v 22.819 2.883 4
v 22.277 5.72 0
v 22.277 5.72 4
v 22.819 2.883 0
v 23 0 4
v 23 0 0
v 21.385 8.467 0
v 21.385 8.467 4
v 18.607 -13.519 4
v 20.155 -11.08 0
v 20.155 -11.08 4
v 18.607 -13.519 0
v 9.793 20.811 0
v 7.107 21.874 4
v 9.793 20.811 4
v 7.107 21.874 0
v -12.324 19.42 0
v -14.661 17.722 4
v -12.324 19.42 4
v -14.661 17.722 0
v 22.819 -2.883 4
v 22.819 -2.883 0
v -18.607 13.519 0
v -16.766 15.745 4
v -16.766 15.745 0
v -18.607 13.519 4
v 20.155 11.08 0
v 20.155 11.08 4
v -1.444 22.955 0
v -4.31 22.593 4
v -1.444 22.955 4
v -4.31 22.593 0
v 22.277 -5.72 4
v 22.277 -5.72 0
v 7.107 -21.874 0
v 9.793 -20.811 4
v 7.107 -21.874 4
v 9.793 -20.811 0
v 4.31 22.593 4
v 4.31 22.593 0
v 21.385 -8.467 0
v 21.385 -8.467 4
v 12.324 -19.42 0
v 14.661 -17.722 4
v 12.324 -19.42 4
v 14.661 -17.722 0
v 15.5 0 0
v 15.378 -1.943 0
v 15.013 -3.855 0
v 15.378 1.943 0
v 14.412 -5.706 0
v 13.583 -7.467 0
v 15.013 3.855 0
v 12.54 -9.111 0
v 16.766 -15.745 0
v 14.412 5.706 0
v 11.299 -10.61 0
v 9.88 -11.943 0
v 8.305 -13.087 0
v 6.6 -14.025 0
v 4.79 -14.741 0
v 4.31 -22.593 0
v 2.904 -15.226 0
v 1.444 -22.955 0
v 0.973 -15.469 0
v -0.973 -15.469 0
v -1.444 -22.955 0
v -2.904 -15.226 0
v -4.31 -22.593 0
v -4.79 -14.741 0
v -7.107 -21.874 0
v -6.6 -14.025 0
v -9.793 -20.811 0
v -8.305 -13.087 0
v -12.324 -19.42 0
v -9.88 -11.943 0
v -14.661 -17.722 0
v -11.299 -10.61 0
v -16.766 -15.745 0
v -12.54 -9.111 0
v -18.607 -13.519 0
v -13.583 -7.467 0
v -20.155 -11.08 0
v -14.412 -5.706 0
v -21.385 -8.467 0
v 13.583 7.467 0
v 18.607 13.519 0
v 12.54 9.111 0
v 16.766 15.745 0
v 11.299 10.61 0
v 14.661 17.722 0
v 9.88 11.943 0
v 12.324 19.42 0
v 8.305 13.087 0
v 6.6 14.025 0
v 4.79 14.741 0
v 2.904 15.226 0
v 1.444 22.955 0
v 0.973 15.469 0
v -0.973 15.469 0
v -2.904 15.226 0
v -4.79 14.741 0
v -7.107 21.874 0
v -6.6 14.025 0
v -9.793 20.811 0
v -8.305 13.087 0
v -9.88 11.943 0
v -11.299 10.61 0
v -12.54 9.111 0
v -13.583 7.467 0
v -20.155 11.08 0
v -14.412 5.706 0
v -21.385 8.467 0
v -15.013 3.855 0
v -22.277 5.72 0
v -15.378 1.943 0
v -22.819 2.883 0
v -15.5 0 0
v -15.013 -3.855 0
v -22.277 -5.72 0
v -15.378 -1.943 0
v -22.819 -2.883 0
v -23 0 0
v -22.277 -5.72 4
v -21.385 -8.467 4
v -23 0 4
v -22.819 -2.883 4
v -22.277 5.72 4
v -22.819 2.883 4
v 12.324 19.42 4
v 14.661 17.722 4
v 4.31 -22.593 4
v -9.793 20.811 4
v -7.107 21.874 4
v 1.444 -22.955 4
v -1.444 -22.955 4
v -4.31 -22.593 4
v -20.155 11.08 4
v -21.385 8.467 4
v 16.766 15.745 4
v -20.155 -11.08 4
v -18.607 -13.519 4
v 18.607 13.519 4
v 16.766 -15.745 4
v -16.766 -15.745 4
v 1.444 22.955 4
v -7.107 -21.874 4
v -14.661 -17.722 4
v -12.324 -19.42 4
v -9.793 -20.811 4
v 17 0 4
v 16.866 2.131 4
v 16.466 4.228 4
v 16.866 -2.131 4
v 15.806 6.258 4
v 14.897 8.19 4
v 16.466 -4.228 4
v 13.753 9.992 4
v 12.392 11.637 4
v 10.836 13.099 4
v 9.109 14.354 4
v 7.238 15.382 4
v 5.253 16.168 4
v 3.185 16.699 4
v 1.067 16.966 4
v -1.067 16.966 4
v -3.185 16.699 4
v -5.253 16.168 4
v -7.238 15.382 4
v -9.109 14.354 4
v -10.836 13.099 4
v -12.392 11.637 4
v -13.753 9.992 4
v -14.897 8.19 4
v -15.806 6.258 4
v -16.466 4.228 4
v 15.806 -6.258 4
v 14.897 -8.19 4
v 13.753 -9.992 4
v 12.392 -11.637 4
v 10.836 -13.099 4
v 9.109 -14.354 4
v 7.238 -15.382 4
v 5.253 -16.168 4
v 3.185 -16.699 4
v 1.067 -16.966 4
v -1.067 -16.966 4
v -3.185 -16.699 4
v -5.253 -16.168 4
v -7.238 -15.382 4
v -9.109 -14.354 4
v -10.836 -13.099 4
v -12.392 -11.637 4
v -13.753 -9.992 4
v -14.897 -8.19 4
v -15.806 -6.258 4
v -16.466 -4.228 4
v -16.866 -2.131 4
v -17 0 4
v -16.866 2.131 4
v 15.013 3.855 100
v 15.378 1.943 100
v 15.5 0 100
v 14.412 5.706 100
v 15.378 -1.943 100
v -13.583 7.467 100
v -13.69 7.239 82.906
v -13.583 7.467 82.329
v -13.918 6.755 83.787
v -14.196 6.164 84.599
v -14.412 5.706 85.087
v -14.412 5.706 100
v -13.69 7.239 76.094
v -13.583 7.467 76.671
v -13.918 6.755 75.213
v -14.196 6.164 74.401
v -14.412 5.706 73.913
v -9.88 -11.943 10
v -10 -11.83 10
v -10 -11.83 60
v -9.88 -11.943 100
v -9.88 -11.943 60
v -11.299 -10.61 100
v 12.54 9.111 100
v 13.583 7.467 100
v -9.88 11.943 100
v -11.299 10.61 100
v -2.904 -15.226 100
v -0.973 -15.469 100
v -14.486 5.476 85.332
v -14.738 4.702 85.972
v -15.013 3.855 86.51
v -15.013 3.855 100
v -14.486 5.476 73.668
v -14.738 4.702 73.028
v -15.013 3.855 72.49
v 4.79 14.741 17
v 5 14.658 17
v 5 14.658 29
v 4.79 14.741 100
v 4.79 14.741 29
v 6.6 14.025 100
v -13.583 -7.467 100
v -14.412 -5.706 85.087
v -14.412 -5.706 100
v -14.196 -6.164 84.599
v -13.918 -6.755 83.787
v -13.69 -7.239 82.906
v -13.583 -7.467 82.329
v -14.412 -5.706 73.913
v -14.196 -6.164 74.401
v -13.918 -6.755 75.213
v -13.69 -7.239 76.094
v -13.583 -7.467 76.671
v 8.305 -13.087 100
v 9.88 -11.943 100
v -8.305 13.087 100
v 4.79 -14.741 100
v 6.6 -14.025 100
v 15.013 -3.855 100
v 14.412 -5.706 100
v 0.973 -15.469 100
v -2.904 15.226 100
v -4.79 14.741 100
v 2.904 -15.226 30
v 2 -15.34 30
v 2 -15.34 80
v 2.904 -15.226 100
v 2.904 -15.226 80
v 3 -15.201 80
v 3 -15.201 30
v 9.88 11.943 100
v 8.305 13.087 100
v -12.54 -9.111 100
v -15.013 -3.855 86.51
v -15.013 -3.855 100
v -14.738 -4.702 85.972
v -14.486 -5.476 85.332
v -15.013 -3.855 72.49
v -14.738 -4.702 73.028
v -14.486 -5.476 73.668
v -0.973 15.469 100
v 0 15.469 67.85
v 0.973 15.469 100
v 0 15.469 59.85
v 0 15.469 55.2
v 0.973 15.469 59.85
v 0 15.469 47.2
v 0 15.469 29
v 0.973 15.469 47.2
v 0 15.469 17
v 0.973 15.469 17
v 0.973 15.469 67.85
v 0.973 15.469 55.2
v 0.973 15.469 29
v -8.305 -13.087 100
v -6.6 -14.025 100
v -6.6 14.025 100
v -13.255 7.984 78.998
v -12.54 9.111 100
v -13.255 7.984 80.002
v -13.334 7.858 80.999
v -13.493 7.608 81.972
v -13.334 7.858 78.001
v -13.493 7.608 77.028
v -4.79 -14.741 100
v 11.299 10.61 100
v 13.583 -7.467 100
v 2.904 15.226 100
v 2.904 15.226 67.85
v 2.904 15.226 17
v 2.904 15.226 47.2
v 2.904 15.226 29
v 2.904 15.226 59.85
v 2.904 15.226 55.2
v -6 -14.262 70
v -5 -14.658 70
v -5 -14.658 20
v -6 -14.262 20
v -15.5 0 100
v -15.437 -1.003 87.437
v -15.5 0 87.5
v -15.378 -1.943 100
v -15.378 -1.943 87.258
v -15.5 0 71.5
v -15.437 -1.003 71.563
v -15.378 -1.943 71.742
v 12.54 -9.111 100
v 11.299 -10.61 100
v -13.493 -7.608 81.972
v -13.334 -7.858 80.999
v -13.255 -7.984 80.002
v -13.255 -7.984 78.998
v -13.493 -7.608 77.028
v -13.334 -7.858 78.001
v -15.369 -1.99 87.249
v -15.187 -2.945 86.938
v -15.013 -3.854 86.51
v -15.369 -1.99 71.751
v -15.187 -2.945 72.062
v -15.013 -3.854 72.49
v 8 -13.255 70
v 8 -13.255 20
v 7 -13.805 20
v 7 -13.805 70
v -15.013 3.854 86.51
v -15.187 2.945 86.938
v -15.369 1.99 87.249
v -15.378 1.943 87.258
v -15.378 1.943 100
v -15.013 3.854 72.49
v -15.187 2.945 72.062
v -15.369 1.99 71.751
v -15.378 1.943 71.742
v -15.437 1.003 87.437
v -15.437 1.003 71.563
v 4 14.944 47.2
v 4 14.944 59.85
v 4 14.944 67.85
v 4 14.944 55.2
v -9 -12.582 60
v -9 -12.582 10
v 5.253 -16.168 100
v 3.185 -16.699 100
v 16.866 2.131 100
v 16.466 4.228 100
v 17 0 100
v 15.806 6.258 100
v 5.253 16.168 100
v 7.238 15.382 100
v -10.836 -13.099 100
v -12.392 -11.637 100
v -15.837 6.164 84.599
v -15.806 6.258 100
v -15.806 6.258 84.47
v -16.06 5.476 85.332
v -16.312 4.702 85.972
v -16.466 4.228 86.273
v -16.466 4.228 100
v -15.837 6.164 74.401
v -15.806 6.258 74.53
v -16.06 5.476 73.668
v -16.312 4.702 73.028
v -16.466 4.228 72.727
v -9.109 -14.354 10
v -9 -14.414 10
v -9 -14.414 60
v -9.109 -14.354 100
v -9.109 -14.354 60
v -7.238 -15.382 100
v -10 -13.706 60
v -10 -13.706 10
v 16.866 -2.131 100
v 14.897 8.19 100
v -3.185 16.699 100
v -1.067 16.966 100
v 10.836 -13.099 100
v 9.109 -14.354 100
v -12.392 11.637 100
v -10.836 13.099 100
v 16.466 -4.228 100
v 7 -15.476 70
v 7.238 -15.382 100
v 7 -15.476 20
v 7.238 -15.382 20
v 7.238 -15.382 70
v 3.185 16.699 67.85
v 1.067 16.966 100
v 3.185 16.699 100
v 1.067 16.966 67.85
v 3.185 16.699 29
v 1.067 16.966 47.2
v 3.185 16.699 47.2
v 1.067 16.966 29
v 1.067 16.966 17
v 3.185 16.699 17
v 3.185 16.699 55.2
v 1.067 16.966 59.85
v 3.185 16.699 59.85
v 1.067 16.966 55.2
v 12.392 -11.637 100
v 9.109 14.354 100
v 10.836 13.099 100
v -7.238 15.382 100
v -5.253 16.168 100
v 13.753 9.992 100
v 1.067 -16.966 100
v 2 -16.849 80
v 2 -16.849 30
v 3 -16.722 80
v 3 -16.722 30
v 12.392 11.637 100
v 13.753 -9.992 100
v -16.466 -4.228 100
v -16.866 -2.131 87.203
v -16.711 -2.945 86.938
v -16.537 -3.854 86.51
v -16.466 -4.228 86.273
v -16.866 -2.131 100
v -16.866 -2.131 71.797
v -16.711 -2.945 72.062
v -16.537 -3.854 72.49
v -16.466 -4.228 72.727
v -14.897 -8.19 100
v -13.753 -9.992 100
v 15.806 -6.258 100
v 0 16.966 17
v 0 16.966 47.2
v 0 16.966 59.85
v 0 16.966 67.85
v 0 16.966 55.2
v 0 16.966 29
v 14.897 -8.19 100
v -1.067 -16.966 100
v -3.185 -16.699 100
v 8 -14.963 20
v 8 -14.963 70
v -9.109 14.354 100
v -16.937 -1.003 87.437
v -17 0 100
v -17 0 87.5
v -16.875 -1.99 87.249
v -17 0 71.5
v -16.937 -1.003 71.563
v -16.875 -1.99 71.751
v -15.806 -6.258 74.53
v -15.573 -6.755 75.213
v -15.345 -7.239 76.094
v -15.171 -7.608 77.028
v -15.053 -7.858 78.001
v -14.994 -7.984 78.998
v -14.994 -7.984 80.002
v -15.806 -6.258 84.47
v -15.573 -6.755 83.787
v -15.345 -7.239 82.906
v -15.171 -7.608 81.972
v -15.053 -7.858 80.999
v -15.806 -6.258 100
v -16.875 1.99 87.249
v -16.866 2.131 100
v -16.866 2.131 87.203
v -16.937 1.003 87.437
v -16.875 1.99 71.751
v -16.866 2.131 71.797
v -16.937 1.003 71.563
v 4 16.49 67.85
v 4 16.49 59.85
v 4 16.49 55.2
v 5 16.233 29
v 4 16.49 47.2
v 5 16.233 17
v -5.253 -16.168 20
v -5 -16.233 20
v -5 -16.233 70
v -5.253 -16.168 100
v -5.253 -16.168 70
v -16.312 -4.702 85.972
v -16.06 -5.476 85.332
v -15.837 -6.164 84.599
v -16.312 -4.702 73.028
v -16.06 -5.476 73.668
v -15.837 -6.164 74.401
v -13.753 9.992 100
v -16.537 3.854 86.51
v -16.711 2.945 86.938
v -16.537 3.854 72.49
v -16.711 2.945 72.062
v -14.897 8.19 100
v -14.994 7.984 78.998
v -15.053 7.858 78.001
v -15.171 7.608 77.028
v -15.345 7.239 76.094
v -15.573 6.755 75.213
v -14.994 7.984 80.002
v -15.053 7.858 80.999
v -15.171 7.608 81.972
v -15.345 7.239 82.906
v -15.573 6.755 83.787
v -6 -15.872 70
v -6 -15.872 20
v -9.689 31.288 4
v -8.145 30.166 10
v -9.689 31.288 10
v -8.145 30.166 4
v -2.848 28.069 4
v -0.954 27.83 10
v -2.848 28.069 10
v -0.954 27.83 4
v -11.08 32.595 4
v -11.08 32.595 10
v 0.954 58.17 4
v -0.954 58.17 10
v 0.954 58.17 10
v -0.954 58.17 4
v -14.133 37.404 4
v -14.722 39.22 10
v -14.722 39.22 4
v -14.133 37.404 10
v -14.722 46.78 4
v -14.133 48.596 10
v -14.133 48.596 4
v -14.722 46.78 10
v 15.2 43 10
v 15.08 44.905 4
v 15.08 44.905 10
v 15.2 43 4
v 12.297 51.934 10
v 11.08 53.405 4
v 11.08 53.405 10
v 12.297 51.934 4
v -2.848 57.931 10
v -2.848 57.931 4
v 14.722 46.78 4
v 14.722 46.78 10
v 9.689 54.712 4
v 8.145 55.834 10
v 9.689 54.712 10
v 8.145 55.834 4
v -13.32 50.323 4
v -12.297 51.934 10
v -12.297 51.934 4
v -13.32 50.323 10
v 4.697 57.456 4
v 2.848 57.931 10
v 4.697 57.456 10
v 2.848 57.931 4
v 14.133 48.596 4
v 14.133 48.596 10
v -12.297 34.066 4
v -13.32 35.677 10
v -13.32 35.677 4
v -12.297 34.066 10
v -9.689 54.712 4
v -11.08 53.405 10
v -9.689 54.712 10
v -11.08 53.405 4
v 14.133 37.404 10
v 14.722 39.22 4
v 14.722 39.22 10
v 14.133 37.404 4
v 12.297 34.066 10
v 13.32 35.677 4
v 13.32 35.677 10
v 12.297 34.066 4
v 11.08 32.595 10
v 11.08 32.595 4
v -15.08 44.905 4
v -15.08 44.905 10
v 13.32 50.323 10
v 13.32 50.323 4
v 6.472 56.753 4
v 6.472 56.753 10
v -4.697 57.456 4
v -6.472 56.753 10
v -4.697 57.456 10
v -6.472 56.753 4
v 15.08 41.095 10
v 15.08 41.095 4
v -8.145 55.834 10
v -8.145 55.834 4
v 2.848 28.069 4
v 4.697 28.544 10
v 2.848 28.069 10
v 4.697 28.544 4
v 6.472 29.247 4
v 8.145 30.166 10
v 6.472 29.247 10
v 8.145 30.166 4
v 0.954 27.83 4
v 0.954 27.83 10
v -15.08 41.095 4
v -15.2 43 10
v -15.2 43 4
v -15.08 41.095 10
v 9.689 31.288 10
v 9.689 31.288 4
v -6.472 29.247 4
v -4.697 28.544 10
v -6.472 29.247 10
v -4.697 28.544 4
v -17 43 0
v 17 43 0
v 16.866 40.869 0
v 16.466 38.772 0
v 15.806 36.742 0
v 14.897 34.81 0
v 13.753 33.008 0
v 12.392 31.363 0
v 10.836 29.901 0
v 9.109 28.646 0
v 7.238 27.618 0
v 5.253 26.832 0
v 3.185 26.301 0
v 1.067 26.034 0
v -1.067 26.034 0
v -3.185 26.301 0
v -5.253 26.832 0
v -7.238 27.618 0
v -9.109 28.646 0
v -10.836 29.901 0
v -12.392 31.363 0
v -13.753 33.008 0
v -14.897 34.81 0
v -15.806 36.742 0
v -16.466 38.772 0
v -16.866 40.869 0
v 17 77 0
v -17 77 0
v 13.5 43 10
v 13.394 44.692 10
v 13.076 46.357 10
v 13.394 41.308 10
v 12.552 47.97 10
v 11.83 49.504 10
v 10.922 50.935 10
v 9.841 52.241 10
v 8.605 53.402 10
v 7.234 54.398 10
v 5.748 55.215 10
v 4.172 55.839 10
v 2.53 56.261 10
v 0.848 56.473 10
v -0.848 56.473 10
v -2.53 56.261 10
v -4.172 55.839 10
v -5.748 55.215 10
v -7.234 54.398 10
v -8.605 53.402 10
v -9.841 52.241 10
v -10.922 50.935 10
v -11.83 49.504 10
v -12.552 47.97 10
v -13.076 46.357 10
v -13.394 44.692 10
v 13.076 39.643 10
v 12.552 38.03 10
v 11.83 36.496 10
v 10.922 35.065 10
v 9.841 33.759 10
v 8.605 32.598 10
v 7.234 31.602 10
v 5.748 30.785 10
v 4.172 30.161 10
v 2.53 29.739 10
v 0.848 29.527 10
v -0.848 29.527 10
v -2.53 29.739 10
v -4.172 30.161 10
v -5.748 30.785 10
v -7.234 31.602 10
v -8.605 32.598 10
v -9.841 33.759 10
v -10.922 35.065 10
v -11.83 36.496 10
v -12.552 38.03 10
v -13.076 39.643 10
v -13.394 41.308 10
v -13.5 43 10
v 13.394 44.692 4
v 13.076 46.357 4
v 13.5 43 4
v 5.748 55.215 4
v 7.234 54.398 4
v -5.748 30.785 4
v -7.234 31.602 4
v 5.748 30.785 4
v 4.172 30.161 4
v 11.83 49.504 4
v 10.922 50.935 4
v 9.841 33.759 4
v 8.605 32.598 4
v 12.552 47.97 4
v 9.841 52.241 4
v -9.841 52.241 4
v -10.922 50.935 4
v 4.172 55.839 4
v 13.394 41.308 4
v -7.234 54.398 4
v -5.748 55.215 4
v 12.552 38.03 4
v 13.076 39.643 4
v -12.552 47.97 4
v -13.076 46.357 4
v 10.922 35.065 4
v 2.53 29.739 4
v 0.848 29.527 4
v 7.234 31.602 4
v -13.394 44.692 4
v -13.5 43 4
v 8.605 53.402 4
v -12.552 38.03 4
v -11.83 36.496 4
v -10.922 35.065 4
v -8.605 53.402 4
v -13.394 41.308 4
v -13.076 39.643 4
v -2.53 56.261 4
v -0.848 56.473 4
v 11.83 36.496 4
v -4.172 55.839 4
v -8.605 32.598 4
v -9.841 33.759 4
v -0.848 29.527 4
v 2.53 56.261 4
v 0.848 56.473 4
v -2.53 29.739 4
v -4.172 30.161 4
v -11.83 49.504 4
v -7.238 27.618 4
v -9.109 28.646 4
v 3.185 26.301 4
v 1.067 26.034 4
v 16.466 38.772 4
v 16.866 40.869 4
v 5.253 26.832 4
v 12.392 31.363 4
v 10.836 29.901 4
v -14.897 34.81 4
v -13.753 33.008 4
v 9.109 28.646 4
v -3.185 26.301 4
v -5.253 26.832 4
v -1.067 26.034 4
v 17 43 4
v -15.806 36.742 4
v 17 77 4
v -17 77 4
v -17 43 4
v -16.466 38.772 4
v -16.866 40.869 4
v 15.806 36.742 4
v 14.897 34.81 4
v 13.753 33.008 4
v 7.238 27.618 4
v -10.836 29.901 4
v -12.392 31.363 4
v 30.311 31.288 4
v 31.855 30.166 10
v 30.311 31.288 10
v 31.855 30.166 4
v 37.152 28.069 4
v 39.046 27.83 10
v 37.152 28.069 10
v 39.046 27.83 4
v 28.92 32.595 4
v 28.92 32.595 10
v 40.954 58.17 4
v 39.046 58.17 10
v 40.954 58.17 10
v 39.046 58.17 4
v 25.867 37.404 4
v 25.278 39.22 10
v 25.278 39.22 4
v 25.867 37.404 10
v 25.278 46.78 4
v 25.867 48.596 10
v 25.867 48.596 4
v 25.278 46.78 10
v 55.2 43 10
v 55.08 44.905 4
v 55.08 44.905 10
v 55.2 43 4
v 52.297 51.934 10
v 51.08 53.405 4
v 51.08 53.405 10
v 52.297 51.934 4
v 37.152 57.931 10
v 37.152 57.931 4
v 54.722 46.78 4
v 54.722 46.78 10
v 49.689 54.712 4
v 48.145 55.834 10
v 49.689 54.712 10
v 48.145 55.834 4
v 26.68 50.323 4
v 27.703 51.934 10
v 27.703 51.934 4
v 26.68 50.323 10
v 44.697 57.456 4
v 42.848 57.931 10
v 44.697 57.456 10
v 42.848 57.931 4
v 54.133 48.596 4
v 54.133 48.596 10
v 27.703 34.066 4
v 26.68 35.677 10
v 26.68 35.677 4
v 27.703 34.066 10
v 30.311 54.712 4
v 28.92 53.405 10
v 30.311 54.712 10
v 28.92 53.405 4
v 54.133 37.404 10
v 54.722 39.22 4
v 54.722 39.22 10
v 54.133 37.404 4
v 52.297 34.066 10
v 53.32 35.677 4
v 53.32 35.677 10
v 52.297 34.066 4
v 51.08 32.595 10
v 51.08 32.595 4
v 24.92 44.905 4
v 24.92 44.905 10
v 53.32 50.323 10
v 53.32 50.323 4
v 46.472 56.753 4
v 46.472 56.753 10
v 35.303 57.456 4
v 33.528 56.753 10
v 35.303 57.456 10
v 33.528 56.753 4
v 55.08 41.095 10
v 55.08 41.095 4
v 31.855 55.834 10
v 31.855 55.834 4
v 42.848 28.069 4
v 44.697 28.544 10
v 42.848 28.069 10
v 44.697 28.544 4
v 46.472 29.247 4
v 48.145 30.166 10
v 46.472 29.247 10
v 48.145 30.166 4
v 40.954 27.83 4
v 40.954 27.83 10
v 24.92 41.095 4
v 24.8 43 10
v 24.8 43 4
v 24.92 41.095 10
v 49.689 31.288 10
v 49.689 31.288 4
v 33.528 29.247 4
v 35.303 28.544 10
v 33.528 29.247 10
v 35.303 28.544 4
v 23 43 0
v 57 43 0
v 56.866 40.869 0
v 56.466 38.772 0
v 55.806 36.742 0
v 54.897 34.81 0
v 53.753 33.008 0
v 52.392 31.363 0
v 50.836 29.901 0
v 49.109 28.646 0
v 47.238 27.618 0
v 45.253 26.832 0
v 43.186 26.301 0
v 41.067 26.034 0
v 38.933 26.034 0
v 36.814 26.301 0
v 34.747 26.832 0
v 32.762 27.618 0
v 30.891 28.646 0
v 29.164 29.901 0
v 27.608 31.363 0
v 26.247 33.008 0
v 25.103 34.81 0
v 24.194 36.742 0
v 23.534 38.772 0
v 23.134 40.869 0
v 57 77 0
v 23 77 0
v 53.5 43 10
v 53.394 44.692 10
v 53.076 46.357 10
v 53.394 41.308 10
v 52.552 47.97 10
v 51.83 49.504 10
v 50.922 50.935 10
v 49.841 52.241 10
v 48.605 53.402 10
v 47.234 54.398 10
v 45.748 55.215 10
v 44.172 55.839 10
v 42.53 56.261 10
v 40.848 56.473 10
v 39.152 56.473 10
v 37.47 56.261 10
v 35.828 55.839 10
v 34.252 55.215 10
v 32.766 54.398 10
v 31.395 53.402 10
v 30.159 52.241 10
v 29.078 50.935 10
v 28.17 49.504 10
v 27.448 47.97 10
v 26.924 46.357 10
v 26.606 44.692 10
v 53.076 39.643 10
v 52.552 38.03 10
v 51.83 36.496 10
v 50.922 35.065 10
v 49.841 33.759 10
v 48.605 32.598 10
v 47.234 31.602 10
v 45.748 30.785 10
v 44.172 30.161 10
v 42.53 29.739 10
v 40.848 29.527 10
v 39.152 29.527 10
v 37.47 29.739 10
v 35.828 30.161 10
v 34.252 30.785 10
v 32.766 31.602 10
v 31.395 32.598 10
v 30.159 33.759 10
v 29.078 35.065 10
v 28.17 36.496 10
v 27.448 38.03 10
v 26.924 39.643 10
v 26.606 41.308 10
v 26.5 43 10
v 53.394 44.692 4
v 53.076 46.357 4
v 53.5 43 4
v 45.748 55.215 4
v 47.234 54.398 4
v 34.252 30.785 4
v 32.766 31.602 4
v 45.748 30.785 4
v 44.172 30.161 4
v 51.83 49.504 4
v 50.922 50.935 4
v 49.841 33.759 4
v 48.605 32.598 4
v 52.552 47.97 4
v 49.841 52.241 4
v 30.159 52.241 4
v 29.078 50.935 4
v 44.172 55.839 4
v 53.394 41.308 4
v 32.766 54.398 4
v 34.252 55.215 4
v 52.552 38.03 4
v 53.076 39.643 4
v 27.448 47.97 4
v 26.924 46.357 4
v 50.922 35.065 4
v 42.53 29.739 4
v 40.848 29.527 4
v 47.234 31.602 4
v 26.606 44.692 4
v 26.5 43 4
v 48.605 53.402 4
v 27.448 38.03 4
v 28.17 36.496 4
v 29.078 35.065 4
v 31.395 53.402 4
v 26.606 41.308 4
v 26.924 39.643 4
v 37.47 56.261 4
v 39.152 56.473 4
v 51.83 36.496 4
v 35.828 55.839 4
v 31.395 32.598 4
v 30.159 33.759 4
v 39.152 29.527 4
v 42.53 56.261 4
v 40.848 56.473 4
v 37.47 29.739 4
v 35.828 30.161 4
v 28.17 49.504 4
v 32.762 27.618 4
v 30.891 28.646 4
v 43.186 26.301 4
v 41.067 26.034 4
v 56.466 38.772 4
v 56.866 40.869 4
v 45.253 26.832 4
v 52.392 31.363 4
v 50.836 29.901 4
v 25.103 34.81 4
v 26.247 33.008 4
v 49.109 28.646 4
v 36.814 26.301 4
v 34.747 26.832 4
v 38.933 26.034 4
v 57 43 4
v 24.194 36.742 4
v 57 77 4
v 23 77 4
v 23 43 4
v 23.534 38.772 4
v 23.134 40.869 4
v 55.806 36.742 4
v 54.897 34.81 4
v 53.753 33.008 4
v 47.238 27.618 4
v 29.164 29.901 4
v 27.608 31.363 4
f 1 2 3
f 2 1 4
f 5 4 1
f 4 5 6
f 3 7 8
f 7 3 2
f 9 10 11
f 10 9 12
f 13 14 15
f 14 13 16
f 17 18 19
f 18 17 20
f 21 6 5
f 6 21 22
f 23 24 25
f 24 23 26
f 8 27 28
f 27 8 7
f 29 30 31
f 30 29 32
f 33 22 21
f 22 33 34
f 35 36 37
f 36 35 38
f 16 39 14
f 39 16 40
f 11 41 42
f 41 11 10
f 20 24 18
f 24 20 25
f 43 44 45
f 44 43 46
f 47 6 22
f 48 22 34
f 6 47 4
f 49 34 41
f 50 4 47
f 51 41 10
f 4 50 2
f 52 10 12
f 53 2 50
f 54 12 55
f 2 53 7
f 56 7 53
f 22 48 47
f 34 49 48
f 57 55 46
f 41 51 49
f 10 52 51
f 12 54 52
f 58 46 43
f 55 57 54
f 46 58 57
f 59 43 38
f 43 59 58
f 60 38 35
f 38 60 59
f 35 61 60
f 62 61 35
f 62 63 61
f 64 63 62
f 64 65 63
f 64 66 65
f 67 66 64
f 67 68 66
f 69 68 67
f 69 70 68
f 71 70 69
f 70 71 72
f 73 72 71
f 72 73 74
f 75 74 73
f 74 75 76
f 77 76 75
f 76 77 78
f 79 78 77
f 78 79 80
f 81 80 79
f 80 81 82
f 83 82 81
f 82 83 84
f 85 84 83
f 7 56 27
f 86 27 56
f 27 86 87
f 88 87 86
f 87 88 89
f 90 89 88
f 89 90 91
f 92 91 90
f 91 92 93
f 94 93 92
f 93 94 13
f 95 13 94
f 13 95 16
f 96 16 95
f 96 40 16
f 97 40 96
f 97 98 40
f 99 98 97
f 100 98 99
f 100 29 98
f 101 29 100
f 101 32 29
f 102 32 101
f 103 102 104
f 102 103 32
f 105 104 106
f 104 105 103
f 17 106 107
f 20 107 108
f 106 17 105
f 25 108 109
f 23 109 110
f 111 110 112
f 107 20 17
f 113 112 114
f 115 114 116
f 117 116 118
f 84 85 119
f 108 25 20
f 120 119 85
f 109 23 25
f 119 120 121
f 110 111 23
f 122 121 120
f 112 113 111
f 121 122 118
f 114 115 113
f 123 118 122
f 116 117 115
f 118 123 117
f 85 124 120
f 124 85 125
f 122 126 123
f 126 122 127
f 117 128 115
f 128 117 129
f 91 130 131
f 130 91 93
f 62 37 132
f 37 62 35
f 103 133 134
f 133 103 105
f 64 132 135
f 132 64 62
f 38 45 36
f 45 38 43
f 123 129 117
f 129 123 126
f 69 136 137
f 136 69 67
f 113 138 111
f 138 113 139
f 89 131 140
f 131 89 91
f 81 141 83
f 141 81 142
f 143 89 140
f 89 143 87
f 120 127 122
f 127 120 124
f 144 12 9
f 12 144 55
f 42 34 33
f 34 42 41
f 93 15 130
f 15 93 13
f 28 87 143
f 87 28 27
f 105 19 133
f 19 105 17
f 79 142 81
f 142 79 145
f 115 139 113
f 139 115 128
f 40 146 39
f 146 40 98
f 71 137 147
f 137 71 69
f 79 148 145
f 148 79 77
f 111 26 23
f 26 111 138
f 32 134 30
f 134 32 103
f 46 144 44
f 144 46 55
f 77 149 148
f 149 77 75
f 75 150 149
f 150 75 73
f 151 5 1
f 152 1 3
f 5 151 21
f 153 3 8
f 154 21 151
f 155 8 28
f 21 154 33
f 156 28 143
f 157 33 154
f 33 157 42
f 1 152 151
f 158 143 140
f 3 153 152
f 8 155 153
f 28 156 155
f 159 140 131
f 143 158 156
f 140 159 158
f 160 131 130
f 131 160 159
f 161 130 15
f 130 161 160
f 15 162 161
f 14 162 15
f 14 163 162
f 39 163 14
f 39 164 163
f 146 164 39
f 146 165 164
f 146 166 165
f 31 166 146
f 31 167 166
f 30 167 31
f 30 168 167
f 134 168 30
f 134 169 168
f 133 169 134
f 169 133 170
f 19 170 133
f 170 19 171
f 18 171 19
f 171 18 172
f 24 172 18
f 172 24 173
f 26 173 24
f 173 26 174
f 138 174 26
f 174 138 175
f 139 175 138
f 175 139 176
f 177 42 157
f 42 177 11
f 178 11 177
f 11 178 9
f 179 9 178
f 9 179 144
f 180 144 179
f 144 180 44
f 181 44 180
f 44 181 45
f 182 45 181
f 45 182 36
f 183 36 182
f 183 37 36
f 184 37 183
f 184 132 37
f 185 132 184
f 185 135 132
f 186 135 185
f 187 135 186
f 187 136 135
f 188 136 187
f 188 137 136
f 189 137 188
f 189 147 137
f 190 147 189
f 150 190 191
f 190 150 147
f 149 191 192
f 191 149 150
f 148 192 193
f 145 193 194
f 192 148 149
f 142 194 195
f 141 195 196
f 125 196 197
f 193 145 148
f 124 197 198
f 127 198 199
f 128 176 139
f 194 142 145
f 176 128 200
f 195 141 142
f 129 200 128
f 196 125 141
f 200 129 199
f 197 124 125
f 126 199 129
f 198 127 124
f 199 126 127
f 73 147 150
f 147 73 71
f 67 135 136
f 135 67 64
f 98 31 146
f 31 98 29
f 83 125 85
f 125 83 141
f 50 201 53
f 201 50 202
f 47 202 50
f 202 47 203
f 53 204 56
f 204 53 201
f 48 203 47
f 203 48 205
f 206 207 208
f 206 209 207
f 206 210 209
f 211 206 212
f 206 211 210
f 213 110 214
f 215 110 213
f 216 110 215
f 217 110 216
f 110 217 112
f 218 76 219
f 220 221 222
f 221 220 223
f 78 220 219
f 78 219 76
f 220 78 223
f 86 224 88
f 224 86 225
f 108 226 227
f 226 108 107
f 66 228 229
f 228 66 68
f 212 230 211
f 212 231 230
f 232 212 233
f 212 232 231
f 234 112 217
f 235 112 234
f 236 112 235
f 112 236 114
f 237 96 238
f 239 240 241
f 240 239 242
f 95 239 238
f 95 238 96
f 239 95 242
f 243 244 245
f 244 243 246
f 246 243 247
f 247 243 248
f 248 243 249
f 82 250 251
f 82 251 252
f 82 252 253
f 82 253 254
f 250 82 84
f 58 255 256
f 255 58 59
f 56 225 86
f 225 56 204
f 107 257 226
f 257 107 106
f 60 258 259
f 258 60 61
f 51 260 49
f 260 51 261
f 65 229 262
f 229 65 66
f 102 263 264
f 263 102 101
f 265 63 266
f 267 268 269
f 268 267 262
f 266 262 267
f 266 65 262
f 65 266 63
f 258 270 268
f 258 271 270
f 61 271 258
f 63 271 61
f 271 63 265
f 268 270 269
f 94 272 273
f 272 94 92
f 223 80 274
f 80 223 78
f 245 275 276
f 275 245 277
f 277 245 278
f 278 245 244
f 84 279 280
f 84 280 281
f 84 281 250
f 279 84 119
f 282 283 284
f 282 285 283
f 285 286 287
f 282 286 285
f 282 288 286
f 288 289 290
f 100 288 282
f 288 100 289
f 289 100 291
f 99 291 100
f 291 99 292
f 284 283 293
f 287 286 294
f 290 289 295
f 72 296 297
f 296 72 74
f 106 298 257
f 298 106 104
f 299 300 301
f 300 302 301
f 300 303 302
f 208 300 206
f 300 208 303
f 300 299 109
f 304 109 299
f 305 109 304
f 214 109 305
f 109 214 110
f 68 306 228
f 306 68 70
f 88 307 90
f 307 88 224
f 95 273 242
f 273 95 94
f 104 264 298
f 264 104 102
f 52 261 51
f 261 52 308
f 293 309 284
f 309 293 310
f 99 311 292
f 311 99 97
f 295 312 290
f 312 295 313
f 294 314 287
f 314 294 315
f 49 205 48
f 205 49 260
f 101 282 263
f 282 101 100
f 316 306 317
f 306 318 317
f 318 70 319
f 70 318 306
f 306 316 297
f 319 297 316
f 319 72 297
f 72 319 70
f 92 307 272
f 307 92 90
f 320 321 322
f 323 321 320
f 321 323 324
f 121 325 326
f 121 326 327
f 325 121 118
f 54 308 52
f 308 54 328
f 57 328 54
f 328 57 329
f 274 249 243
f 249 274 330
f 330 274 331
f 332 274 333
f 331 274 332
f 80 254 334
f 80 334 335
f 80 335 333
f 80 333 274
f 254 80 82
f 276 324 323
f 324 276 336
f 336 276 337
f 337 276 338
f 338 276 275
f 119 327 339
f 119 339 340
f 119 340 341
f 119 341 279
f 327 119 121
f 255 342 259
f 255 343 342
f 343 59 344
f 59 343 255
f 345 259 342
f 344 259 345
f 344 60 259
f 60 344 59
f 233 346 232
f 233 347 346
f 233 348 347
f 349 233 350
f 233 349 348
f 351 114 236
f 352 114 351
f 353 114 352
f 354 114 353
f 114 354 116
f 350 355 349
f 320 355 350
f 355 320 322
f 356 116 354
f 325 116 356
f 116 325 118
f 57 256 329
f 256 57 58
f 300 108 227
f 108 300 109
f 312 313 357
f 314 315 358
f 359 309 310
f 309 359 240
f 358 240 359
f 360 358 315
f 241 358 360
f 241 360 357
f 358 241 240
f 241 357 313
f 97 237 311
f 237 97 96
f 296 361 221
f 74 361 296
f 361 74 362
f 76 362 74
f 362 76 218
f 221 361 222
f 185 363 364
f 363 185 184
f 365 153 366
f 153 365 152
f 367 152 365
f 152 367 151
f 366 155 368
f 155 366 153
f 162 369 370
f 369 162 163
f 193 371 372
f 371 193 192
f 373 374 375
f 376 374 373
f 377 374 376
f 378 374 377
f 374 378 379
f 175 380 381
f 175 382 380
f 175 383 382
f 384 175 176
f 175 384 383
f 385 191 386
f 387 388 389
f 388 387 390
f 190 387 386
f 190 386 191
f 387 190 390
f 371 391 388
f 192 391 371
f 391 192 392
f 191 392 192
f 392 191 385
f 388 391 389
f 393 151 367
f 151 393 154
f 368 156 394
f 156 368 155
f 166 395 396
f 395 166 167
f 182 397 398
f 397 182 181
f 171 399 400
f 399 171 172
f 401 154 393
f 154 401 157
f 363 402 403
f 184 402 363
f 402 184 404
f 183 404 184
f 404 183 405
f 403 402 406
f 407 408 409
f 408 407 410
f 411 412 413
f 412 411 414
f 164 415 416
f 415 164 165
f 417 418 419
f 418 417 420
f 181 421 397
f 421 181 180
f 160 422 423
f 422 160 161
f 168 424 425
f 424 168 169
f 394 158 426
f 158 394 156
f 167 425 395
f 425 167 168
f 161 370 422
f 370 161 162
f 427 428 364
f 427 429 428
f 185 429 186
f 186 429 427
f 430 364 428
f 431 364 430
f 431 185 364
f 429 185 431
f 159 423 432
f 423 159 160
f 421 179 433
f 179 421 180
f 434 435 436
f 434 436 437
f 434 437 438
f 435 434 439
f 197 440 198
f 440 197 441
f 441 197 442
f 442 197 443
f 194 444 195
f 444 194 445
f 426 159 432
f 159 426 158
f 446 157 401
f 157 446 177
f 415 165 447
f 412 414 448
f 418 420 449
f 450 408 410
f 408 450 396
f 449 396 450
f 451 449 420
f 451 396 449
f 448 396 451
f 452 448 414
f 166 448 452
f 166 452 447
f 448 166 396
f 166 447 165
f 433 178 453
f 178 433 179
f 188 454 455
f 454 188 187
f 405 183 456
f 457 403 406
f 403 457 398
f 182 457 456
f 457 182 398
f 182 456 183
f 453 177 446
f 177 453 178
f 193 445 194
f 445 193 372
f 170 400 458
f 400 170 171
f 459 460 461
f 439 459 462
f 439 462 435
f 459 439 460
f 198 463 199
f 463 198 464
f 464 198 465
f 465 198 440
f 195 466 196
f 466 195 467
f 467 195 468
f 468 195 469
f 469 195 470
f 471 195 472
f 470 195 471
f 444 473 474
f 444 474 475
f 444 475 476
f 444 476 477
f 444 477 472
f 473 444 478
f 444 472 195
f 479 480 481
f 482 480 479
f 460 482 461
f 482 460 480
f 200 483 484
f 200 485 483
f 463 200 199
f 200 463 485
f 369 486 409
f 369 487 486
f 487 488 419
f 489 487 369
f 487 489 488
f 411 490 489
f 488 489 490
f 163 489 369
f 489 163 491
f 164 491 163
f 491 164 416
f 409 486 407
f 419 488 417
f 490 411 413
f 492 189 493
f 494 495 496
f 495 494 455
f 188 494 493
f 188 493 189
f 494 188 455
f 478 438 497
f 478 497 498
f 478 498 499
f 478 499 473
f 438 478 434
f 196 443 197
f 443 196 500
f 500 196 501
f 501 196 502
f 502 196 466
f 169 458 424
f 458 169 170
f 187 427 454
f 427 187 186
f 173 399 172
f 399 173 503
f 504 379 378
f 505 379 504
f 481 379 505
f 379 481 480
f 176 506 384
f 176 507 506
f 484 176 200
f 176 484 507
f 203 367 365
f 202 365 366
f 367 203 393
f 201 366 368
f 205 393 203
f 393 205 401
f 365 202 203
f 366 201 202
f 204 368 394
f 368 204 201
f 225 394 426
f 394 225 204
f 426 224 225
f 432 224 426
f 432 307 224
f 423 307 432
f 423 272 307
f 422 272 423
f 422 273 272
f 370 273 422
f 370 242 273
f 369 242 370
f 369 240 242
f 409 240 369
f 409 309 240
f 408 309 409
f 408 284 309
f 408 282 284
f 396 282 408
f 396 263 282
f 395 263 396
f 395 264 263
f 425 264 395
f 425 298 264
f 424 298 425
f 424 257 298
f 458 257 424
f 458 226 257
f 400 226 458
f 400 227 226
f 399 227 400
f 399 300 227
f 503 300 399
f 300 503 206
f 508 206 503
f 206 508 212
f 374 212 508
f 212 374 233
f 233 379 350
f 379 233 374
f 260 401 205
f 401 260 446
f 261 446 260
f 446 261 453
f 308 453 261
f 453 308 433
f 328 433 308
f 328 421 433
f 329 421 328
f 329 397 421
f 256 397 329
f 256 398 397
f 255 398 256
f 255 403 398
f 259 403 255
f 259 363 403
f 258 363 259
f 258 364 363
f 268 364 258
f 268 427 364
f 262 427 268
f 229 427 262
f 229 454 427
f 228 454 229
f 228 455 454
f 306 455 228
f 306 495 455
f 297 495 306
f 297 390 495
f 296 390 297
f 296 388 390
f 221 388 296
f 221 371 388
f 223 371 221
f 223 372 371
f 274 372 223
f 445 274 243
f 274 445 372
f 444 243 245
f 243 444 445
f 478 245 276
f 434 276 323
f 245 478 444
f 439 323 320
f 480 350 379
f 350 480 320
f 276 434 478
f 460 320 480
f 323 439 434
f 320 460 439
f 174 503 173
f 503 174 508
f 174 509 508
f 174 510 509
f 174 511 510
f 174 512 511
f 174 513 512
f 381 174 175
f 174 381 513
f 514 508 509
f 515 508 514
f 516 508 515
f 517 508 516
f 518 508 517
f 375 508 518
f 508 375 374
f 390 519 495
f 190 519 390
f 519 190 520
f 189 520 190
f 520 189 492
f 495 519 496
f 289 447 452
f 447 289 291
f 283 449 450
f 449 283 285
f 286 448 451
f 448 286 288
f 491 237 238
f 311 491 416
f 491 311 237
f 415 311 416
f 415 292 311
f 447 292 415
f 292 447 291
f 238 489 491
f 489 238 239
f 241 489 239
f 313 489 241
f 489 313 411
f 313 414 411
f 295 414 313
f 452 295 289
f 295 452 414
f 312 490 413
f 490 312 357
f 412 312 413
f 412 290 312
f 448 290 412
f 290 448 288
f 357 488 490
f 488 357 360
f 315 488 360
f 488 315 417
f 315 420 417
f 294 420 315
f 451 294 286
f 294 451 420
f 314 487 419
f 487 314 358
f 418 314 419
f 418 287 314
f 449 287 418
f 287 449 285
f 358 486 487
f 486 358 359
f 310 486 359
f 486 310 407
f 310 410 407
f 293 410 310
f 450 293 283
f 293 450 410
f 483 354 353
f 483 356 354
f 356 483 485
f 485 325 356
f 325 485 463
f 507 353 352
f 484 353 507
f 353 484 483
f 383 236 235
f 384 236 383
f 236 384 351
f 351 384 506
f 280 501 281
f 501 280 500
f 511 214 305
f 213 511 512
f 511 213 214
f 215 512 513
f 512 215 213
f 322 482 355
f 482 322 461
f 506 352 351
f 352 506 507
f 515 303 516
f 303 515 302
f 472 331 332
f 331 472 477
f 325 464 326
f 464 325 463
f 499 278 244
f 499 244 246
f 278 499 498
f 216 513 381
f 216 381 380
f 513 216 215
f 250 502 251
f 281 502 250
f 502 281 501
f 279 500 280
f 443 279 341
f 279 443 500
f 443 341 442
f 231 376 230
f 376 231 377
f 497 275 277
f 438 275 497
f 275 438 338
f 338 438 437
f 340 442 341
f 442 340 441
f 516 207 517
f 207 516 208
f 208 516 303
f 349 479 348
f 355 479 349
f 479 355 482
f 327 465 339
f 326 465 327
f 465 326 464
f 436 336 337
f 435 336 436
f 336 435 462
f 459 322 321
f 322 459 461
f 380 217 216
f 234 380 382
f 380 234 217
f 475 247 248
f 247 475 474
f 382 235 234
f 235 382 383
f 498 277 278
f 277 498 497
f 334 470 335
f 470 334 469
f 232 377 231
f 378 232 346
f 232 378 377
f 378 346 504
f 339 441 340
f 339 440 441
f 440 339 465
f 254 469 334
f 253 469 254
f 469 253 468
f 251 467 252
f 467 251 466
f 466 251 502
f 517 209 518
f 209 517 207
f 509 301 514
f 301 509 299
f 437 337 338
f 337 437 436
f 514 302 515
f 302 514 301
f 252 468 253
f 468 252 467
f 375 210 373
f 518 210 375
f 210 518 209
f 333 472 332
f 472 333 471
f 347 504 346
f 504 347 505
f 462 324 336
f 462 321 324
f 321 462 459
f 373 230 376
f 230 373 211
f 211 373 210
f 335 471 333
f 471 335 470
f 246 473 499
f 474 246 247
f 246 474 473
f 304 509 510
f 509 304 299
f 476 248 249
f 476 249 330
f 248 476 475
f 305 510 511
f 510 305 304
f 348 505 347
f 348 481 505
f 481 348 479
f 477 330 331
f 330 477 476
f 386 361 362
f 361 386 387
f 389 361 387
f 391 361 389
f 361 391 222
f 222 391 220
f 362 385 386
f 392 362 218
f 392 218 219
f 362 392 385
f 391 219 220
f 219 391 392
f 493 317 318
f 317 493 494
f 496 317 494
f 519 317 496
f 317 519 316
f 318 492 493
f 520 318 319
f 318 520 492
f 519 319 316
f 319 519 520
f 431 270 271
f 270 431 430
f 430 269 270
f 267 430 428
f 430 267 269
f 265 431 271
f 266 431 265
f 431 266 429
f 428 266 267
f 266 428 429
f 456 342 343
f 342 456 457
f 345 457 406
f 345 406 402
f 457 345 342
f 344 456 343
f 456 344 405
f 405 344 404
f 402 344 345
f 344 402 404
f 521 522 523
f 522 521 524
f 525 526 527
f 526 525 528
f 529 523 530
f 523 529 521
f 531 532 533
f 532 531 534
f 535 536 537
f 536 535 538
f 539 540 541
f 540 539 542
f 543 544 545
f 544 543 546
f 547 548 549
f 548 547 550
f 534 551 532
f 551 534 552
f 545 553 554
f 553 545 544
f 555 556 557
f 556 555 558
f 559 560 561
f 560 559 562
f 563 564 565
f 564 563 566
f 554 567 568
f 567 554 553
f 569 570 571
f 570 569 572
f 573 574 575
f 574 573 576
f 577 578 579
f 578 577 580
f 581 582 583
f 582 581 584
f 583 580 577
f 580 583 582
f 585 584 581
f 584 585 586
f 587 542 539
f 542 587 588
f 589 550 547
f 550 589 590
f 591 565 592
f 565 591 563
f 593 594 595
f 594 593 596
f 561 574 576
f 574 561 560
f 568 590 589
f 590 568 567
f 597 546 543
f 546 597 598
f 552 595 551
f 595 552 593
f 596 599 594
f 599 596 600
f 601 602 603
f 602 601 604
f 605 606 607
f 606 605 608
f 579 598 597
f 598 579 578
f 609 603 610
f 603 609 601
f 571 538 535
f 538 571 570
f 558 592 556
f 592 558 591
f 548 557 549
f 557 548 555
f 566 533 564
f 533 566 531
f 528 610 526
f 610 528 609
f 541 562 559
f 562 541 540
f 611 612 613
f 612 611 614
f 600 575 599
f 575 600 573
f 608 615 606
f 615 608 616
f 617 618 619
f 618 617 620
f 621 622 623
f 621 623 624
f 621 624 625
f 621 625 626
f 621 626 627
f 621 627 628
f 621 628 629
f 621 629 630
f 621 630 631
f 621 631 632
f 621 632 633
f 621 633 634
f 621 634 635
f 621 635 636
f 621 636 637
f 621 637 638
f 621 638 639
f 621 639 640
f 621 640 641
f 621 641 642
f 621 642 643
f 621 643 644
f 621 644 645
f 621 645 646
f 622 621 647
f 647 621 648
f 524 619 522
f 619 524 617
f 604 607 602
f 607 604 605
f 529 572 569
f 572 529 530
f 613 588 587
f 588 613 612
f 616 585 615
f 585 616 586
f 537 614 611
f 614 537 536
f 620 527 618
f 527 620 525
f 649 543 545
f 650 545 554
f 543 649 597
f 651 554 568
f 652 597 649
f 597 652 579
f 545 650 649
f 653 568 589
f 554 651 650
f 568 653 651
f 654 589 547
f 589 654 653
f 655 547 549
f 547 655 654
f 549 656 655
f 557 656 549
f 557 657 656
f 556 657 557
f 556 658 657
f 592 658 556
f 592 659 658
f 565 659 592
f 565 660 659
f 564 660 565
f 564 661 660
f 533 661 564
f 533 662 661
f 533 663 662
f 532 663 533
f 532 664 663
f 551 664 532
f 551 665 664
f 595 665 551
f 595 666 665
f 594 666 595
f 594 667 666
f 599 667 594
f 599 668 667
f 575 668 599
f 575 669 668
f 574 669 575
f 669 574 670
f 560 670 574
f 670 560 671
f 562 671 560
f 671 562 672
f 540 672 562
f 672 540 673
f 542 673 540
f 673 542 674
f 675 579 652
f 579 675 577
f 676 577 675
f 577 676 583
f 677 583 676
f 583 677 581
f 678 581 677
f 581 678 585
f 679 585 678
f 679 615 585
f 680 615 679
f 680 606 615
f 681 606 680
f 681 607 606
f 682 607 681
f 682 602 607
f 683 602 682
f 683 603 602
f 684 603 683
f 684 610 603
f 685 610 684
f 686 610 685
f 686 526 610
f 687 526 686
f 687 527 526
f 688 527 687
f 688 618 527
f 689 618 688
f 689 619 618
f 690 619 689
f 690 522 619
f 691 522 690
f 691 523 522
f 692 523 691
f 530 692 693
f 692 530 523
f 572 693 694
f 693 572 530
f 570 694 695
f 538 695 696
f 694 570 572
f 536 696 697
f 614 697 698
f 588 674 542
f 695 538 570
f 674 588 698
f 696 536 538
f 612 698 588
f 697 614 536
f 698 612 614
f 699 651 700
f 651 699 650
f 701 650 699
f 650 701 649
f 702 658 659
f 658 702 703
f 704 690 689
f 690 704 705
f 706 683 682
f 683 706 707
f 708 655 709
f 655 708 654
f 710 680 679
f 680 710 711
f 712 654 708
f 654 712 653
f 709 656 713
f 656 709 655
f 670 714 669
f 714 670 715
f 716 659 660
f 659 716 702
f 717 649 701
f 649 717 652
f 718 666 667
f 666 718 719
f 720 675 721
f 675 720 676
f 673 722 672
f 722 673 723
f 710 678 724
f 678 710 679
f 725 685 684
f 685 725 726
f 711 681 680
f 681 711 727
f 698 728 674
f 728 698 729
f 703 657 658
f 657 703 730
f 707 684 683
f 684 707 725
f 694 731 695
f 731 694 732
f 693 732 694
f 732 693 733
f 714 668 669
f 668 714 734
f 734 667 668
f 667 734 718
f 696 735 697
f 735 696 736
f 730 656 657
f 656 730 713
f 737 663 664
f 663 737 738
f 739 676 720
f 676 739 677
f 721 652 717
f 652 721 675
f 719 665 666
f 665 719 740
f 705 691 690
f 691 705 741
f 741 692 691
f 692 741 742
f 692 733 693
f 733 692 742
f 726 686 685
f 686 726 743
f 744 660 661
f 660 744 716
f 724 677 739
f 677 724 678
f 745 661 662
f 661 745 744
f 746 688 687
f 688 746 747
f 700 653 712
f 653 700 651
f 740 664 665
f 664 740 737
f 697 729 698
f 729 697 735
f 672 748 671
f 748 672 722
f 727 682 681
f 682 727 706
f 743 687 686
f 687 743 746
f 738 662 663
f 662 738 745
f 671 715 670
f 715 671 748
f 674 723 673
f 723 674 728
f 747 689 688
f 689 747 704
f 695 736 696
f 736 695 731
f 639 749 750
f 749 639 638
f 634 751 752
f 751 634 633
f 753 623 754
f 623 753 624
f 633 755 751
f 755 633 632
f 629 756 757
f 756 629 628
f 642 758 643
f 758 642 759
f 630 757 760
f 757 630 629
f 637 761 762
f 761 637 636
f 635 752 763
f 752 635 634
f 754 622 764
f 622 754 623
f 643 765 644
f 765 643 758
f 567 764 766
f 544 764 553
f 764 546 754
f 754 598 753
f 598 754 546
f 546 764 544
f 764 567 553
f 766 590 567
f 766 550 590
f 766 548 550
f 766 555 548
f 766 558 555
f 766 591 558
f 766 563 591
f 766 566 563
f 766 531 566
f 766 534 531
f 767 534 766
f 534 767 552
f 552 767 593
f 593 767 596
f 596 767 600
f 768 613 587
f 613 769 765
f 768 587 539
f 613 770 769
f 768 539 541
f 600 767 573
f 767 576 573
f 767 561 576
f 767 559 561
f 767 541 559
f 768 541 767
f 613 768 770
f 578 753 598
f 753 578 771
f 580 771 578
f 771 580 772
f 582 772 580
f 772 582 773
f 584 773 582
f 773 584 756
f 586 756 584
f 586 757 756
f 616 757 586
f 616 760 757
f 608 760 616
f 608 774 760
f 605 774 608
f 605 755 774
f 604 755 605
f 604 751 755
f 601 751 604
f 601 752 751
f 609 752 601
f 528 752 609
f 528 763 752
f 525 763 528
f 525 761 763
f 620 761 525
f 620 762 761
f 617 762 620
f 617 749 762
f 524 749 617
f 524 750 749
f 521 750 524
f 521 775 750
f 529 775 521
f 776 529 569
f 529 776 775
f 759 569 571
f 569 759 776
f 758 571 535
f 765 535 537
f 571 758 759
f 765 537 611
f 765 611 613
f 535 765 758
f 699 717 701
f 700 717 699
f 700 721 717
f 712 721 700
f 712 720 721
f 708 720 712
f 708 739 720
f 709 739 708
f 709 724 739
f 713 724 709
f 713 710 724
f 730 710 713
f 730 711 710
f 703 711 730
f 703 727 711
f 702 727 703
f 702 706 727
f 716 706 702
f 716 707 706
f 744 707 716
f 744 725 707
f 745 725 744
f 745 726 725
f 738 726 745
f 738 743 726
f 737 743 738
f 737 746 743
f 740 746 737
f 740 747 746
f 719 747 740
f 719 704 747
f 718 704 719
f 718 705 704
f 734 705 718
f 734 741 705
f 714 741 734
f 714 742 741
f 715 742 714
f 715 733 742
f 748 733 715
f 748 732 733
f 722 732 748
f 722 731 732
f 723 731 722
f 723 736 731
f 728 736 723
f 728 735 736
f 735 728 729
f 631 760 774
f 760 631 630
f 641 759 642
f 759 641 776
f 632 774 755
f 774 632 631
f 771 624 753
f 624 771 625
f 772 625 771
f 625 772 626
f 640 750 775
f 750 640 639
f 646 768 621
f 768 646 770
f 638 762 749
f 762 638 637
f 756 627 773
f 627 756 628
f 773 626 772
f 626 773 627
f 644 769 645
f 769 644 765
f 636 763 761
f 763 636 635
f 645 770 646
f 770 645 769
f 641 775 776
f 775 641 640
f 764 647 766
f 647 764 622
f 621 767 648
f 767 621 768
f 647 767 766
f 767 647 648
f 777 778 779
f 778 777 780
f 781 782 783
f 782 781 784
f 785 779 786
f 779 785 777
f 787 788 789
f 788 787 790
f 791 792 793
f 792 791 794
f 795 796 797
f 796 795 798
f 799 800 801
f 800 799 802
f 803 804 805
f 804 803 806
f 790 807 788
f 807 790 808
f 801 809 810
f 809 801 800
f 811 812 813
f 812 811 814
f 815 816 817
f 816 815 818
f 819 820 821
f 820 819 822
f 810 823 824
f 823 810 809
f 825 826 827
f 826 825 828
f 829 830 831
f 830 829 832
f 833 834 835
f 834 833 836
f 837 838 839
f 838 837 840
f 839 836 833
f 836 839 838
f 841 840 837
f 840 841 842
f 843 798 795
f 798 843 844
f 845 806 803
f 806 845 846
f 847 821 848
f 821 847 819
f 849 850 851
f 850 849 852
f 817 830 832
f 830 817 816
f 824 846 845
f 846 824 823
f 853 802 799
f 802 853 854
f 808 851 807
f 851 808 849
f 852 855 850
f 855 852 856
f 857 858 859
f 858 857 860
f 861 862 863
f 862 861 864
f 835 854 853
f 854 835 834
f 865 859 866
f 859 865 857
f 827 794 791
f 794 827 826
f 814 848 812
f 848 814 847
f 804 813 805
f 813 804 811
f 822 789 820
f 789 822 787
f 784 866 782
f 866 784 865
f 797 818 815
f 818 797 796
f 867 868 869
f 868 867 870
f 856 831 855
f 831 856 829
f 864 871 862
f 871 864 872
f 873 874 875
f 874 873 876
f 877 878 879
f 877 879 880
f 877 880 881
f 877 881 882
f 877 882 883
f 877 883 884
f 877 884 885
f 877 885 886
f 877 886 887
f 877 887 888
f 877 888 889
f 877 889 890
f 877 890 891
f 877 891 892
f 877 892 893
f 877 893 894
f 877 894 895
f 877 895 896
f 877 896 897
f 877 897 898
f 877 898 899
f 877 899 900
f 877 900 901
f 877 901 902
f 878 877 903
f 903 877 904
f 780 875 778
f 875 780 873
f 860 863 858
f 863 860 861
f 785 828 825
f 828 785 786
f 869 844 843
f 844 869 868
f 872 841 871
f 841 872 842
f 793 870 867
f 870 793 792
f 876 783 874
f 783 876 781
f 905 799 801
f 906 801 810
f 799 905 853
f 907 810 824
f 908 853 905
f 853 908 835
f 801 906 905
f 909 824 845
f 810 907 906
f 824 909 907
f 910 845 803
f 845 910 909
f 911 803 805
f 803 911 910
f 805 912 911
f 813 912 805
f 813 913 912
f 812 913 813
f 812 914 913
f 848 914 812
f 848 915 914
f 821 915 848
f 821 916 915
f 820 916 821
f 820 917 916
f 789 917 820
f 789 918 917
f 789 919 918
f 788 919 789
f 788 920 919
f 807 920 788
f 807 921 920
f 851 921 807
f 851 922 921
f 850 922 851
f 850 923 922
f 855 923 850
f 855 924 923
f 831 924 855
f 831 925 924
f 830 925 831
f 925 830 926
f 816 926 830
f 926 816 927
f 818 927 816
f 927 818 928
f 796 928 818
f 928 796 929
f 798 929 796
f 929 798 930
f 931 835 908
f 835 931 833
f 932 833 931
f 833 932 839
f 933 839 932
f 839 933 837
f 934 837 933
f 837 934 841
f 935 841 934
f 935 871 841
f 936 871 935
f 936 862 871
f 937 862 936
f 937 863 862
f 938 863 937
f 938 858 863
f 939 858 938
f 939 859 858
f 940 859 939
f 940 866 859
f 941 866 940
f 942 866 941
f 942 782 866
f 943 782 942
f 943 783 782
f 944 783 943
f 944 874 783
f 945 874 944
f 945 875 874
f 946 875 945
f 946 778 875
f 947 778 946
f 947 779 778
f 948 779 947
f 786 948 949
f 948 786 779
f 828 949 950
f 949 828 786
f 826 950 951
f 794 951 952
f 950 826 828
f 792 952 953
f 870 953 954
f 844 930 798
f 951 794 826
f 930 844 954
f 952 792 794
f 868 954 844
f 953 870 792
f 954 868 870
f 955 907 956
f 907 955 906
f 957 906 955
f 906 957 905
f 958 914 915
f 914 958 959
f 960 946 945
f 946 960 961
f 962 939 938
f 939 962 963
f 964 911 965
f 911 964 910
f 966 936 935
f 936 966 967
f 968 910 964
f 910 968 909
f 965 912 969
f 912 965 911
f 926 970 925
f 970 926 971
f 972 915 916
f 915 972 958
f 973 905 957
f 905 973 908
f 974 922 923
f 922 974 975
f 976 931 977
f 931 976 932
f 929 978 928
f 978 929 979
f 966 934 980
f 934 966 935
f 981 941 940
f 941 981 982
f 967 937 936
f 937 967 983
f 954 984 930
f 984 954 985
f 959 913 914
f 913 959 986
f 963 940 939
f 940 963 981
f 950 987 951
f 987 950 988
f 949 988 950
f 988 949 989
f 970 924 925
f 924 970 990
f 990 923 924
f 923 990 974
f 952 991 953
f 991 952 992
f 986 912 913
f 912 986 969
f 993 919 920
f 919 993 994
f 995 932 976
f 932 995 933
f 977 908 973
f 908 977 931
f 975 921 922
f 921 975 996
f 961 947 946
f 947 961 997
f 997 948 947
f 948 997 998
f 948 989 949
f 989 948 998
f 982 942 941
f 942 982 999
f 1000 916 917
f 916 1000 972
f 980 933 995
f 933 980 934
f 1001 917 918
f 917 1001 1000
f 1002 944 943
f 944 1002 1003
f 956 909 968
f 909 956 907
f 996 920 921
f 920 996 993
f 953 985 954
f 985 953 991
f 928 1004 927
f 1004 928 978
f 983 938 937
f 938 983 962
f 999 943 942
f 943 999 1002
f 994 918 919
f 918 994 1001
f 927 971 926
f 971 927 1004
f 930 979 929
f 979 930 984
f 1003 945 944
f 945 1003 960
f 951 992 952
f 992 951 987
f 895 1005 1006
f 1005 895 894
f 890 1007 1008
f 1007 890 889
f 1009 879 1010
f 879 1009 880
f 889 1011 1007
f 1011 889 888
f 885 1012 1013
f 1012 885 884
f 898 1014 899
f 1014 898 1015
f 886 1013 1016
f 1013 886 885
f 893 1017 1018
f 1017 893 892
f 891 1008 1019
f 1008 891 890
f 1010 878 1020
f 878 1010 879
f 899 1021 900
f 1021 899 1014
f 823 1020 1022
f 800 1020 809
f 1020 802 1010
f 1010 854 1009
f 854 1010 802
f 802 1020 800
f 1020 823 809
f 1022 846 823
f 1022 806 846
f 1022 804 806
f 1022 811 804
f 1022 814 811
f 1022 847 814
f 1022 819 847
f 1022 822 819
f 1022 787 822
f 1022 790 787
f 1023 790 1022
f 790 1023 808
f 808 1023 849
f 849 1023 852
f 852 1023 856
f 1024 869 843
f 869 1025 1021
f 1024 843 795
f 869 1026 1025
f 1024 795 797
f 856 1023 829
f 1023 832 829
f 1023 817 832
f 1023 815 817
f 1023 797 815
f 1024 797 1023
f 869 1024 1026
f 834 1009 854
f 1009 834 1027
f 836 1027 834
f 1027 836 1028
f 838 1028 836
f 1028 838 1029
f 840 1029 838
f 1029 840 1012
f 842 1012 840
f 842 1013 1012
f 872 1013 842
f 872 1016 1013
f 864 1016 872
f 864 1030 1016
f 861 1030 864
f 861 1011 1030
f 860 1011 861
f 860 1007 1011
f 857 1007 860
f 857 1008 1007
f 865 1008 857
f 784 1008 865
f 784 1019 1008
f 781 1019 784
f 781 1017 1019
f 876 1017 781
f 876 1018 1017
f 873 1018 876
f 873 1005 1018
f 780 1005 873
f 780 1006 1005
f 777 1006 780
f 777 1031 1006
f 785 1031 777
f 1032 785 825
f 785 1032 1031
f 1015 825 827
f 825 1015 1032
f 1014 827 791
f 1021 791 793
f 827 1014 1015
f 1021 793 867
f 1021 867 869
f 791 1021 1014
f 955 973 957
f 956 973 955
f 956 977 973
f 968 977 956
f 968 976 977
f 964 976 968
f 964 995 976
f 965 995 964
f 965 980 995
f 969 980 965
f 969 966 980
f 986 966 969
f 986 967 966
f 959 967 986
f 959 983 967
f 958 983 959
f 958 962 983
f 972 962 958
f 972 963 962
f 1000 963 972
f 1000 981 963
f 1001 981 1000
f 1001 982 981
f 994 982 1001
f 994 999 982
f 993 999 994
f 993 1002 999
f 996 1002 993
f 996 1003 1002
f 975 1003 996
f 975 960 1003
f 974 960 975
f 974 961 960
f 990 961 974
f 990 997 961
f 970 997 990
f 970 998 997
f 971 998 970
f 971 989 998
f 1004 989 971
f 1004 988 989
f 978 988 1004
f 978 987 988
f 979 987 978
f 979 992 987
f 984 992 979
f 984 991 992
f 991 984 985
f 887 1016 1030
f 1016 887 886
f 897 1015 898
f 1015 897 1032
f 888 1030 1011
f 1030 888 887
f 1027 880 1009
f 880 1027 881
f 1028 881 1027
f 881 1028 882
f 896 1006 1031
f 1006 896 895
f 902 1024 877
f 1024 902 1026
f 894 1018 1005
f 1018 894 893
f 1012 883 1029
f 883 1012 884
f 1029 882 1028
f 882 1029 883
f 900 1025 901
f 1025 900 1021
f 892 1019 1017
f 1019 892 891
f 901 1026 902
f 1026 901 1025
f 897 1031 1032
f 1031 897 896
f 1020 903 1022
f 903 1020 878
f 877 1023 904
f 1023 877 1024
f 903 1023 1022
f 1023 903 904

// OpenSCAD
$fn=50;

module rounded(x, y, z, r) {
    translate([r, r, 0])
        minkowski() {
          cube([x - 2 * r, y - 2 * r, z - 1]);
          cylinder(r=r, h = 1);
        };
}

module pi() {
    rounded(65, 30, 1.5, 2.5);

    translate([52, 7.3, 0])
    cube([16, 12, 3]);

    translate([65 - 19, 30 - 7, 0])
    cube([12, 17, 5]);

    translate([19.8, 30 - 6, 0])
    cube([8, 16, 4]);

    translate([7.15, 30 - 6, 0])
    cube([8, 16, 4]);
}

module cam() {
    cube([25, 25, 1]);
  
    translate([-1.7, 1.5, -3.4])
    cube([25, 22, 4.4]);
  
    translate([15.5, 12.5, -24])
    cylinder(25, 16 / 2, 16 / 2);
}

module picam() {
    pi();
    
    translate([-20, 2.5, -6])
    cam();
}


module holes() {
    translate([-10,-20, 10])
        cube([1, 30, 50]);
    
    translate([-6,-20, 20])
        cube([1, 20, 50]);
     
    translate([2,-20, 30])
        cube([1, 30, 50]);
    
    translate([7,-20, 20])
        cube([1, 30, 50]);
   
    translate([0,0,4])
        cylinder(60, 13.5, 13.5);
    
    translate([0,-15,75])
            rotate([0, 90, 0])
            picam();
}

module base() {
    difference() {
        cylinder(4, 23, 23);
        translate([0,0,-10])
            cylinder(18, 15.5, 15.5);
    }
}

module body() {
    difference() {      
        difference() {
            cylinder(100, 17, 17);
            translate([0,0,-10])
                cylinder(130, 15.5, 15.5);
        };

        holes();
    }
}

module top() {
    difference() {
        translate([0,0,0])
            cylinder(10, 15.2, 15.2);
        translate([0,0,0])
            cylinder(20, 13.5, 13.5);
    }
    
    translate([0,0,0])
        cylinder(4, 17, 17);
    translate([-17,0,0])
        cube([34, 34, 4]);
}

base();
body();

translate([0,43,0])
    top();
translate([40,43,0])
    top();
